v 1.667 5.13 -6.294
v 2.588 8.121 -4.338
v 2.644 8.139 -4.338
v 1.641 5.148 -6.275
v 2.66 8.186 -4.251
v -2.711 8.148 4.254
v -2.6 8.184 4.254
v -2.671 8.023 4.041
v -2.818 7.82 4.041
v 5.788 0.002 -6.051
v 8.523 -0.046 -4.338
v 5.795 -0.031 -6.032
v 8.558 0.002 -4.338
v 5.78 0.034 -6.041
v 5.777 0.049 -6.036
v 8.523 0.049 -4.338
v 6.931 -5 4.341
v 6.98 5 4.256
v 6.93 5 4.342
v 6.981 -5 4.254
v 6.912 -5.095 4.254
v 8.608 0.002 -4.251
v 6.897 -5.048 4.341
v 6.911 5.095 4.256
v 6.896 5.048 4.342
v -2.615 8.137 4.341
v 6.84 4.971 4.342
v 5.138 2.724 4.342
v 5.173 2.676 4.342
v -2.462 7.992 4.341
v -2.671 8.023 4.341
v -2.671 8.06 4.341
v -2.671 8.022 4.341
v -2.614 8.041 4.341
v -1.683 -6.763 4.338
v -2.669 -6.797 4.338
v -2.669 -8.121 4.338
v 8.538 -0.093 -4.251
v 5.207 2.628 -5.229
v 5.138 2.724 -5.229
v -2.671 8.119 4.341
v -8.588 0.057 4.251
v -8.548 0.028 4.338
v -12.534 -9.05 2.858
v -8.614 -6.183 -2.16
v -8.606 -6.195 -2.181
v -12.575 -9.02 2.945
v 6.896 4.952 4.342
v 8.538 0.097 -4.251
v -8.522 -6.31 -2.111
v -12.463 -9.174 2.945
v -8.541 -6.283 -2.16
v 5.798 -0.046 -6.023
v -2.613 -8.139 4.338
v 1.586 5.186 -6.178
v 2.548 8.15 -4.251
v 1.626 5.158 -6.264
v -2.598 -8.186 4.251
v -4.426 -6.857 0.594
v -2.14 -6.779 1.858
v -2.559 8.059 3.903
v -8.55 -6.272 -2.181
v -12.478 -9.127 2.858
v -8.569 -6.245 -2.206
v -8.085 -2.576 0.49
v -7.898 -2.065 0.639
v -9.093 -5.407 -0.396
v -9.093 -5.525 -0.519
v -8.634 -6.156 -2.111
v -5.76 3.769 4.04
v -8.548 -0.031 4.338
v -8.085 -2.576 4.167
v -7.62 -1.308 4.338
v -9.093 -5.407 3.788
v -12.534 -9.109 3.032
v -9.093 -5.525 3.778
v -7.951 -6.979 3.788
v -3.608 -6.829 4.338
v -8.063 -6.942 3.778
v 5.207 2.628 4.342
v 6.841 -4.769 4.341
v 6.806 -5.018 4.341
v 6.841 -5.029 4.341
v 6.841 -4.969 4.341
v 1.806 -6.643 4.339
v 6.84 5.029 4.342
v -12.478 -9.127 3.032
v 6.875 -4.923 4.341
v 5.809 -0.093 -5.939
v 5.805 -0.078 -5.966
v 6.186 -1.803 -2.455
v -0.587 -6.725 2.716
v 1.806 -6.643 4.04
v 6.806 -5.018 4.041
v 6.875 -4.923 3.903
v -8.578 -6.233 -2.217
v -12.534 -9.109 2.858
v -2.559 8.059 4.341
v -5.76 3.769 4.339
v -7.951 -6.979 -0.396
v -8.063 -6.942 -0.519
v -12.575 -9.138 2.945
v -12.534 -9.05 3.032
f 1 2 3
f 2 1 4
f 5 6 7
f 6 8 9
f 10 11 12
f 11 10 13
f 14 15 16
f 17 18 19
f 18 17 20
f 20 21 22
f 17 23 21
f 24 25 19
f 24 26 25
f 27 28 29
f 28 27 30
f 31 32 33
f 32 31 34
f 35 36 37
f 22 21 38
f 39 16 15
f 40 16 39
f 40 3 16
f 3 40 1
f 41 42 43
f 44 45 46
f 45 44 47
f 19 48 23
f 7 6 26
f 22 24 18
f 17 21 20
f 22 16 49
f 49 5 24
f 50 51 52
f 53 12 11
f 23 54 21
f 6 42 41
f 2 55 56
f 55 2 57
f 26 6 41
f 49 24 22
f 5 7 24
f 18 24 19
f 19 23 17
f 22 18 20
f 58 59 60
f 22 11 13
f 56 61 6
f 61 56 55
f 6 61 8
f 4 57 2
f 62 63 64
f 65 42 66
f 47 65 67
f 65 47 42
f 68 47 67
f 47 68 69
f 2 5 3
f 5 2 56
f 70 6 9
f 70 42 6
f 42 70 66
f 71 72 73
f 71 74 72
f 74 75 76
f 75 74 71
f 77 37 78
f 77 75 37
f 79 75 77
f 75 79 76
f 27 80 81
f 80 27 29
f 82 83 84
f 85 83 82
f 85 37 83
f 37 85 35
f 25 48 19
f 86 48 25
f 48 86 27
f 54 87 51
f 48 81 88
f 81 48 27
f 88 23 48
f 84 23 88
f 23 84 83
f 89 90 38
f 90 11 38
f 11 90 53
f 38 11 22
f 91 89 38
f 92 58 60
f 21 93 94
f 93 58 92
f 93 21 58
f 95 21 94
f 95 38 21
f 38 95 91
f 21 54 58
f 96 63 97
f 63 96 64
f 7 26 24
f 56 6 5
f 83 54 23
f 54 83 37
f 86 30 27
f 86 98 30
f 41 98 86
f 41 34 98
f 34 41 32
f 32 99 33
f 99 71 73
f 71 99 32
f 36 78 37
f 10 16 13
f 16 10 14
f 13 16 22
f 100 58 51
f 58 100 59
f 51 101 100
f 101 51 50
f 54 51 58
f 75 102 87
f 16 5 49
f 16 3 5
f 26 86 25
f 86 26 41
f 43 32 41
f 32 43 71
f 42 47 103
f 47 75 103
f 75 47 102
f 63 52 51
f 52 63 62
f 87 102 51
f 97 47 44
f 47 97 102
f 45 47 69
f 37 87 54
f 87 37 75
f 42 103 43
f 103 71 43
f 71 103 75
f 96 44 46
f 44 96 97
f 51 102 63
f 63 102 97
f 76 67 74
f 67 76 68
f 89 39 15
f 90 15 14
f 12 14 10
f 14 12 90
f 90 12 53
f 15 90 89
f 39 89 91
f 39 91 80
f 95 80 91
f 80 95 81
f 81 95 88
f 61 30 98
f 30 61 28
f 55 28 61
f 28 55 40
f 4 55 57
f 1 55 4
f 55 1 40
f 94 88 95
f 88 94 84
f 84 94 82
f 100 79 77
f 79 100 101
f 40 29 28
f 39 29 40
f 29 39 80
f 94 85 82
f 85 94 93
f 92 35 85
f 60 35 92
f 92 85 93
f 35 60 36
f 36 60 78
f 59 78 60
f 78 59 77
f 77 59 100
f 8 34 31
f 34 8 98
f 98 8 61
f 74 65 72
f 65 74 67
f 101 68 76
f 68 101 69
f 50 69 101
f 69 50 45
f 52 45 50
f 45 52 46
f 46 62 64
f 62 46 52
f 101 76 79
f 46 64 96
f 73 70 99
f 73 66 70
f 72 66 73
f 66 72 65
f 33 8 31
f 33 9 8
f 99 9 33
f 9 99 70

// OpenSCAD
// Auto-generated OpenSCAD file

    inner_points = 10*[[0.010822126776322105, -0.4253965348253418, -0.8841193748434077], [-0.9011876079860377, -0.546584266283201, -0.49226254200418296], [-0.5679521834680924, 0.3710392408495472, -0.708875678733561], [-0.7981668194007837, -0.6883484018941259, 0.4922625450168436], [-0.2589805762752483, 0.796397621522542, 0.14177512737898157], [0.6774959295154908, -0.4922625333758151, -0.14177512924090818], [-0.4012610459893345, 0.1416600510453211, 0.8841193748434077], [0.5107486887730253, 0.2628477825031803, 0.49226254200418296], [0.17751326425508, -0.6547757246295679, 0.708875678733561], [-0.8003688307481618, -0.2634563312038399, -1.446030934505191]];

    outer_points = 10*[[-0.6880381915718803, -0.49999998970608384, -0.42557250195458624], [-0.2628785942986316, -0.8091184366568306, 0.4251243315890725], [-0.8507501659543638, -0.00016416400980563553, 0.42512659922224816], [0.6881449121452123, -0.49999998970608384, 0.4253999146333339], [-0.26305127181358173, 0.8089155187812519, 0.4254035837408861], [0.0002222331138788114, 0.00016416400980563553, -0.9510564761622176], [0.6880381915718803, 0.49999998970608384, 0.42557250195458624], [0.2628785942986316, 0.8091184366568306, -0.4251243315890725], [0.8507501659543638, 0.00016416400980563553, -0.42512659922224816], [-1.2493737711519366, -0.9079276976139716, 0.2944951005790503]];

    // Convex hull for inner set (I)
    module inner_hull() {
        hull() {
            for (p = inner_points) {
                translate(p) sphere(r=0.1);
            }
        }
    }

    // Convex hull for outer set (O) minus inner hull (O \ I)
    module outer_minus_inner() {
        difference() {
            hull() {
                for (p = outer_points) {
                    translate(p) sphere(r=0.1);
                }
            }
            inner_hull(); // Subtract inner hull
        }
    }

    // Convex hull for outer set (O) minus all translated inner hulls
    module outer_minus_AllTranslationInner() {
        difference() {
            hull() {
                for (p = outer_points) {
                    translate(p) sphere(r=0.1);
                }
            }
            hull() {
                translate([0,0,50]) inner_hull();
                translate([0,0,-50]) inner_hull();
            }; // Subtract translated inner hulls
        }
    }

    // Difference between outer_minus_inner and outer_minus_AllTranslationInner
    module outer_minus_inner_diff() {
        difference() {
            // Outer minus inner
            difference() {
                hull() {
                    for (p = outer_points) {
                        translate(p) sphere(r=0.1);
                    }
                }
                inner_hull();
            }

            // Subtract Outer minus AllTranslationInner
            difference() {
                hull() {
                    for (p = outer_points) {
                        translate(p) sphere(r=0.1);
                    }
                }
                hull() {
                    translate([0,0,50]) inner_hull();
                    translate([0,0,-50]) inner_hull();
                };
            }
        }
    }

    // Rendering all with colors applied
    color([0, 1, 0, 1]) outer_minus_AllTranslationInner(); // Opaque green
    
